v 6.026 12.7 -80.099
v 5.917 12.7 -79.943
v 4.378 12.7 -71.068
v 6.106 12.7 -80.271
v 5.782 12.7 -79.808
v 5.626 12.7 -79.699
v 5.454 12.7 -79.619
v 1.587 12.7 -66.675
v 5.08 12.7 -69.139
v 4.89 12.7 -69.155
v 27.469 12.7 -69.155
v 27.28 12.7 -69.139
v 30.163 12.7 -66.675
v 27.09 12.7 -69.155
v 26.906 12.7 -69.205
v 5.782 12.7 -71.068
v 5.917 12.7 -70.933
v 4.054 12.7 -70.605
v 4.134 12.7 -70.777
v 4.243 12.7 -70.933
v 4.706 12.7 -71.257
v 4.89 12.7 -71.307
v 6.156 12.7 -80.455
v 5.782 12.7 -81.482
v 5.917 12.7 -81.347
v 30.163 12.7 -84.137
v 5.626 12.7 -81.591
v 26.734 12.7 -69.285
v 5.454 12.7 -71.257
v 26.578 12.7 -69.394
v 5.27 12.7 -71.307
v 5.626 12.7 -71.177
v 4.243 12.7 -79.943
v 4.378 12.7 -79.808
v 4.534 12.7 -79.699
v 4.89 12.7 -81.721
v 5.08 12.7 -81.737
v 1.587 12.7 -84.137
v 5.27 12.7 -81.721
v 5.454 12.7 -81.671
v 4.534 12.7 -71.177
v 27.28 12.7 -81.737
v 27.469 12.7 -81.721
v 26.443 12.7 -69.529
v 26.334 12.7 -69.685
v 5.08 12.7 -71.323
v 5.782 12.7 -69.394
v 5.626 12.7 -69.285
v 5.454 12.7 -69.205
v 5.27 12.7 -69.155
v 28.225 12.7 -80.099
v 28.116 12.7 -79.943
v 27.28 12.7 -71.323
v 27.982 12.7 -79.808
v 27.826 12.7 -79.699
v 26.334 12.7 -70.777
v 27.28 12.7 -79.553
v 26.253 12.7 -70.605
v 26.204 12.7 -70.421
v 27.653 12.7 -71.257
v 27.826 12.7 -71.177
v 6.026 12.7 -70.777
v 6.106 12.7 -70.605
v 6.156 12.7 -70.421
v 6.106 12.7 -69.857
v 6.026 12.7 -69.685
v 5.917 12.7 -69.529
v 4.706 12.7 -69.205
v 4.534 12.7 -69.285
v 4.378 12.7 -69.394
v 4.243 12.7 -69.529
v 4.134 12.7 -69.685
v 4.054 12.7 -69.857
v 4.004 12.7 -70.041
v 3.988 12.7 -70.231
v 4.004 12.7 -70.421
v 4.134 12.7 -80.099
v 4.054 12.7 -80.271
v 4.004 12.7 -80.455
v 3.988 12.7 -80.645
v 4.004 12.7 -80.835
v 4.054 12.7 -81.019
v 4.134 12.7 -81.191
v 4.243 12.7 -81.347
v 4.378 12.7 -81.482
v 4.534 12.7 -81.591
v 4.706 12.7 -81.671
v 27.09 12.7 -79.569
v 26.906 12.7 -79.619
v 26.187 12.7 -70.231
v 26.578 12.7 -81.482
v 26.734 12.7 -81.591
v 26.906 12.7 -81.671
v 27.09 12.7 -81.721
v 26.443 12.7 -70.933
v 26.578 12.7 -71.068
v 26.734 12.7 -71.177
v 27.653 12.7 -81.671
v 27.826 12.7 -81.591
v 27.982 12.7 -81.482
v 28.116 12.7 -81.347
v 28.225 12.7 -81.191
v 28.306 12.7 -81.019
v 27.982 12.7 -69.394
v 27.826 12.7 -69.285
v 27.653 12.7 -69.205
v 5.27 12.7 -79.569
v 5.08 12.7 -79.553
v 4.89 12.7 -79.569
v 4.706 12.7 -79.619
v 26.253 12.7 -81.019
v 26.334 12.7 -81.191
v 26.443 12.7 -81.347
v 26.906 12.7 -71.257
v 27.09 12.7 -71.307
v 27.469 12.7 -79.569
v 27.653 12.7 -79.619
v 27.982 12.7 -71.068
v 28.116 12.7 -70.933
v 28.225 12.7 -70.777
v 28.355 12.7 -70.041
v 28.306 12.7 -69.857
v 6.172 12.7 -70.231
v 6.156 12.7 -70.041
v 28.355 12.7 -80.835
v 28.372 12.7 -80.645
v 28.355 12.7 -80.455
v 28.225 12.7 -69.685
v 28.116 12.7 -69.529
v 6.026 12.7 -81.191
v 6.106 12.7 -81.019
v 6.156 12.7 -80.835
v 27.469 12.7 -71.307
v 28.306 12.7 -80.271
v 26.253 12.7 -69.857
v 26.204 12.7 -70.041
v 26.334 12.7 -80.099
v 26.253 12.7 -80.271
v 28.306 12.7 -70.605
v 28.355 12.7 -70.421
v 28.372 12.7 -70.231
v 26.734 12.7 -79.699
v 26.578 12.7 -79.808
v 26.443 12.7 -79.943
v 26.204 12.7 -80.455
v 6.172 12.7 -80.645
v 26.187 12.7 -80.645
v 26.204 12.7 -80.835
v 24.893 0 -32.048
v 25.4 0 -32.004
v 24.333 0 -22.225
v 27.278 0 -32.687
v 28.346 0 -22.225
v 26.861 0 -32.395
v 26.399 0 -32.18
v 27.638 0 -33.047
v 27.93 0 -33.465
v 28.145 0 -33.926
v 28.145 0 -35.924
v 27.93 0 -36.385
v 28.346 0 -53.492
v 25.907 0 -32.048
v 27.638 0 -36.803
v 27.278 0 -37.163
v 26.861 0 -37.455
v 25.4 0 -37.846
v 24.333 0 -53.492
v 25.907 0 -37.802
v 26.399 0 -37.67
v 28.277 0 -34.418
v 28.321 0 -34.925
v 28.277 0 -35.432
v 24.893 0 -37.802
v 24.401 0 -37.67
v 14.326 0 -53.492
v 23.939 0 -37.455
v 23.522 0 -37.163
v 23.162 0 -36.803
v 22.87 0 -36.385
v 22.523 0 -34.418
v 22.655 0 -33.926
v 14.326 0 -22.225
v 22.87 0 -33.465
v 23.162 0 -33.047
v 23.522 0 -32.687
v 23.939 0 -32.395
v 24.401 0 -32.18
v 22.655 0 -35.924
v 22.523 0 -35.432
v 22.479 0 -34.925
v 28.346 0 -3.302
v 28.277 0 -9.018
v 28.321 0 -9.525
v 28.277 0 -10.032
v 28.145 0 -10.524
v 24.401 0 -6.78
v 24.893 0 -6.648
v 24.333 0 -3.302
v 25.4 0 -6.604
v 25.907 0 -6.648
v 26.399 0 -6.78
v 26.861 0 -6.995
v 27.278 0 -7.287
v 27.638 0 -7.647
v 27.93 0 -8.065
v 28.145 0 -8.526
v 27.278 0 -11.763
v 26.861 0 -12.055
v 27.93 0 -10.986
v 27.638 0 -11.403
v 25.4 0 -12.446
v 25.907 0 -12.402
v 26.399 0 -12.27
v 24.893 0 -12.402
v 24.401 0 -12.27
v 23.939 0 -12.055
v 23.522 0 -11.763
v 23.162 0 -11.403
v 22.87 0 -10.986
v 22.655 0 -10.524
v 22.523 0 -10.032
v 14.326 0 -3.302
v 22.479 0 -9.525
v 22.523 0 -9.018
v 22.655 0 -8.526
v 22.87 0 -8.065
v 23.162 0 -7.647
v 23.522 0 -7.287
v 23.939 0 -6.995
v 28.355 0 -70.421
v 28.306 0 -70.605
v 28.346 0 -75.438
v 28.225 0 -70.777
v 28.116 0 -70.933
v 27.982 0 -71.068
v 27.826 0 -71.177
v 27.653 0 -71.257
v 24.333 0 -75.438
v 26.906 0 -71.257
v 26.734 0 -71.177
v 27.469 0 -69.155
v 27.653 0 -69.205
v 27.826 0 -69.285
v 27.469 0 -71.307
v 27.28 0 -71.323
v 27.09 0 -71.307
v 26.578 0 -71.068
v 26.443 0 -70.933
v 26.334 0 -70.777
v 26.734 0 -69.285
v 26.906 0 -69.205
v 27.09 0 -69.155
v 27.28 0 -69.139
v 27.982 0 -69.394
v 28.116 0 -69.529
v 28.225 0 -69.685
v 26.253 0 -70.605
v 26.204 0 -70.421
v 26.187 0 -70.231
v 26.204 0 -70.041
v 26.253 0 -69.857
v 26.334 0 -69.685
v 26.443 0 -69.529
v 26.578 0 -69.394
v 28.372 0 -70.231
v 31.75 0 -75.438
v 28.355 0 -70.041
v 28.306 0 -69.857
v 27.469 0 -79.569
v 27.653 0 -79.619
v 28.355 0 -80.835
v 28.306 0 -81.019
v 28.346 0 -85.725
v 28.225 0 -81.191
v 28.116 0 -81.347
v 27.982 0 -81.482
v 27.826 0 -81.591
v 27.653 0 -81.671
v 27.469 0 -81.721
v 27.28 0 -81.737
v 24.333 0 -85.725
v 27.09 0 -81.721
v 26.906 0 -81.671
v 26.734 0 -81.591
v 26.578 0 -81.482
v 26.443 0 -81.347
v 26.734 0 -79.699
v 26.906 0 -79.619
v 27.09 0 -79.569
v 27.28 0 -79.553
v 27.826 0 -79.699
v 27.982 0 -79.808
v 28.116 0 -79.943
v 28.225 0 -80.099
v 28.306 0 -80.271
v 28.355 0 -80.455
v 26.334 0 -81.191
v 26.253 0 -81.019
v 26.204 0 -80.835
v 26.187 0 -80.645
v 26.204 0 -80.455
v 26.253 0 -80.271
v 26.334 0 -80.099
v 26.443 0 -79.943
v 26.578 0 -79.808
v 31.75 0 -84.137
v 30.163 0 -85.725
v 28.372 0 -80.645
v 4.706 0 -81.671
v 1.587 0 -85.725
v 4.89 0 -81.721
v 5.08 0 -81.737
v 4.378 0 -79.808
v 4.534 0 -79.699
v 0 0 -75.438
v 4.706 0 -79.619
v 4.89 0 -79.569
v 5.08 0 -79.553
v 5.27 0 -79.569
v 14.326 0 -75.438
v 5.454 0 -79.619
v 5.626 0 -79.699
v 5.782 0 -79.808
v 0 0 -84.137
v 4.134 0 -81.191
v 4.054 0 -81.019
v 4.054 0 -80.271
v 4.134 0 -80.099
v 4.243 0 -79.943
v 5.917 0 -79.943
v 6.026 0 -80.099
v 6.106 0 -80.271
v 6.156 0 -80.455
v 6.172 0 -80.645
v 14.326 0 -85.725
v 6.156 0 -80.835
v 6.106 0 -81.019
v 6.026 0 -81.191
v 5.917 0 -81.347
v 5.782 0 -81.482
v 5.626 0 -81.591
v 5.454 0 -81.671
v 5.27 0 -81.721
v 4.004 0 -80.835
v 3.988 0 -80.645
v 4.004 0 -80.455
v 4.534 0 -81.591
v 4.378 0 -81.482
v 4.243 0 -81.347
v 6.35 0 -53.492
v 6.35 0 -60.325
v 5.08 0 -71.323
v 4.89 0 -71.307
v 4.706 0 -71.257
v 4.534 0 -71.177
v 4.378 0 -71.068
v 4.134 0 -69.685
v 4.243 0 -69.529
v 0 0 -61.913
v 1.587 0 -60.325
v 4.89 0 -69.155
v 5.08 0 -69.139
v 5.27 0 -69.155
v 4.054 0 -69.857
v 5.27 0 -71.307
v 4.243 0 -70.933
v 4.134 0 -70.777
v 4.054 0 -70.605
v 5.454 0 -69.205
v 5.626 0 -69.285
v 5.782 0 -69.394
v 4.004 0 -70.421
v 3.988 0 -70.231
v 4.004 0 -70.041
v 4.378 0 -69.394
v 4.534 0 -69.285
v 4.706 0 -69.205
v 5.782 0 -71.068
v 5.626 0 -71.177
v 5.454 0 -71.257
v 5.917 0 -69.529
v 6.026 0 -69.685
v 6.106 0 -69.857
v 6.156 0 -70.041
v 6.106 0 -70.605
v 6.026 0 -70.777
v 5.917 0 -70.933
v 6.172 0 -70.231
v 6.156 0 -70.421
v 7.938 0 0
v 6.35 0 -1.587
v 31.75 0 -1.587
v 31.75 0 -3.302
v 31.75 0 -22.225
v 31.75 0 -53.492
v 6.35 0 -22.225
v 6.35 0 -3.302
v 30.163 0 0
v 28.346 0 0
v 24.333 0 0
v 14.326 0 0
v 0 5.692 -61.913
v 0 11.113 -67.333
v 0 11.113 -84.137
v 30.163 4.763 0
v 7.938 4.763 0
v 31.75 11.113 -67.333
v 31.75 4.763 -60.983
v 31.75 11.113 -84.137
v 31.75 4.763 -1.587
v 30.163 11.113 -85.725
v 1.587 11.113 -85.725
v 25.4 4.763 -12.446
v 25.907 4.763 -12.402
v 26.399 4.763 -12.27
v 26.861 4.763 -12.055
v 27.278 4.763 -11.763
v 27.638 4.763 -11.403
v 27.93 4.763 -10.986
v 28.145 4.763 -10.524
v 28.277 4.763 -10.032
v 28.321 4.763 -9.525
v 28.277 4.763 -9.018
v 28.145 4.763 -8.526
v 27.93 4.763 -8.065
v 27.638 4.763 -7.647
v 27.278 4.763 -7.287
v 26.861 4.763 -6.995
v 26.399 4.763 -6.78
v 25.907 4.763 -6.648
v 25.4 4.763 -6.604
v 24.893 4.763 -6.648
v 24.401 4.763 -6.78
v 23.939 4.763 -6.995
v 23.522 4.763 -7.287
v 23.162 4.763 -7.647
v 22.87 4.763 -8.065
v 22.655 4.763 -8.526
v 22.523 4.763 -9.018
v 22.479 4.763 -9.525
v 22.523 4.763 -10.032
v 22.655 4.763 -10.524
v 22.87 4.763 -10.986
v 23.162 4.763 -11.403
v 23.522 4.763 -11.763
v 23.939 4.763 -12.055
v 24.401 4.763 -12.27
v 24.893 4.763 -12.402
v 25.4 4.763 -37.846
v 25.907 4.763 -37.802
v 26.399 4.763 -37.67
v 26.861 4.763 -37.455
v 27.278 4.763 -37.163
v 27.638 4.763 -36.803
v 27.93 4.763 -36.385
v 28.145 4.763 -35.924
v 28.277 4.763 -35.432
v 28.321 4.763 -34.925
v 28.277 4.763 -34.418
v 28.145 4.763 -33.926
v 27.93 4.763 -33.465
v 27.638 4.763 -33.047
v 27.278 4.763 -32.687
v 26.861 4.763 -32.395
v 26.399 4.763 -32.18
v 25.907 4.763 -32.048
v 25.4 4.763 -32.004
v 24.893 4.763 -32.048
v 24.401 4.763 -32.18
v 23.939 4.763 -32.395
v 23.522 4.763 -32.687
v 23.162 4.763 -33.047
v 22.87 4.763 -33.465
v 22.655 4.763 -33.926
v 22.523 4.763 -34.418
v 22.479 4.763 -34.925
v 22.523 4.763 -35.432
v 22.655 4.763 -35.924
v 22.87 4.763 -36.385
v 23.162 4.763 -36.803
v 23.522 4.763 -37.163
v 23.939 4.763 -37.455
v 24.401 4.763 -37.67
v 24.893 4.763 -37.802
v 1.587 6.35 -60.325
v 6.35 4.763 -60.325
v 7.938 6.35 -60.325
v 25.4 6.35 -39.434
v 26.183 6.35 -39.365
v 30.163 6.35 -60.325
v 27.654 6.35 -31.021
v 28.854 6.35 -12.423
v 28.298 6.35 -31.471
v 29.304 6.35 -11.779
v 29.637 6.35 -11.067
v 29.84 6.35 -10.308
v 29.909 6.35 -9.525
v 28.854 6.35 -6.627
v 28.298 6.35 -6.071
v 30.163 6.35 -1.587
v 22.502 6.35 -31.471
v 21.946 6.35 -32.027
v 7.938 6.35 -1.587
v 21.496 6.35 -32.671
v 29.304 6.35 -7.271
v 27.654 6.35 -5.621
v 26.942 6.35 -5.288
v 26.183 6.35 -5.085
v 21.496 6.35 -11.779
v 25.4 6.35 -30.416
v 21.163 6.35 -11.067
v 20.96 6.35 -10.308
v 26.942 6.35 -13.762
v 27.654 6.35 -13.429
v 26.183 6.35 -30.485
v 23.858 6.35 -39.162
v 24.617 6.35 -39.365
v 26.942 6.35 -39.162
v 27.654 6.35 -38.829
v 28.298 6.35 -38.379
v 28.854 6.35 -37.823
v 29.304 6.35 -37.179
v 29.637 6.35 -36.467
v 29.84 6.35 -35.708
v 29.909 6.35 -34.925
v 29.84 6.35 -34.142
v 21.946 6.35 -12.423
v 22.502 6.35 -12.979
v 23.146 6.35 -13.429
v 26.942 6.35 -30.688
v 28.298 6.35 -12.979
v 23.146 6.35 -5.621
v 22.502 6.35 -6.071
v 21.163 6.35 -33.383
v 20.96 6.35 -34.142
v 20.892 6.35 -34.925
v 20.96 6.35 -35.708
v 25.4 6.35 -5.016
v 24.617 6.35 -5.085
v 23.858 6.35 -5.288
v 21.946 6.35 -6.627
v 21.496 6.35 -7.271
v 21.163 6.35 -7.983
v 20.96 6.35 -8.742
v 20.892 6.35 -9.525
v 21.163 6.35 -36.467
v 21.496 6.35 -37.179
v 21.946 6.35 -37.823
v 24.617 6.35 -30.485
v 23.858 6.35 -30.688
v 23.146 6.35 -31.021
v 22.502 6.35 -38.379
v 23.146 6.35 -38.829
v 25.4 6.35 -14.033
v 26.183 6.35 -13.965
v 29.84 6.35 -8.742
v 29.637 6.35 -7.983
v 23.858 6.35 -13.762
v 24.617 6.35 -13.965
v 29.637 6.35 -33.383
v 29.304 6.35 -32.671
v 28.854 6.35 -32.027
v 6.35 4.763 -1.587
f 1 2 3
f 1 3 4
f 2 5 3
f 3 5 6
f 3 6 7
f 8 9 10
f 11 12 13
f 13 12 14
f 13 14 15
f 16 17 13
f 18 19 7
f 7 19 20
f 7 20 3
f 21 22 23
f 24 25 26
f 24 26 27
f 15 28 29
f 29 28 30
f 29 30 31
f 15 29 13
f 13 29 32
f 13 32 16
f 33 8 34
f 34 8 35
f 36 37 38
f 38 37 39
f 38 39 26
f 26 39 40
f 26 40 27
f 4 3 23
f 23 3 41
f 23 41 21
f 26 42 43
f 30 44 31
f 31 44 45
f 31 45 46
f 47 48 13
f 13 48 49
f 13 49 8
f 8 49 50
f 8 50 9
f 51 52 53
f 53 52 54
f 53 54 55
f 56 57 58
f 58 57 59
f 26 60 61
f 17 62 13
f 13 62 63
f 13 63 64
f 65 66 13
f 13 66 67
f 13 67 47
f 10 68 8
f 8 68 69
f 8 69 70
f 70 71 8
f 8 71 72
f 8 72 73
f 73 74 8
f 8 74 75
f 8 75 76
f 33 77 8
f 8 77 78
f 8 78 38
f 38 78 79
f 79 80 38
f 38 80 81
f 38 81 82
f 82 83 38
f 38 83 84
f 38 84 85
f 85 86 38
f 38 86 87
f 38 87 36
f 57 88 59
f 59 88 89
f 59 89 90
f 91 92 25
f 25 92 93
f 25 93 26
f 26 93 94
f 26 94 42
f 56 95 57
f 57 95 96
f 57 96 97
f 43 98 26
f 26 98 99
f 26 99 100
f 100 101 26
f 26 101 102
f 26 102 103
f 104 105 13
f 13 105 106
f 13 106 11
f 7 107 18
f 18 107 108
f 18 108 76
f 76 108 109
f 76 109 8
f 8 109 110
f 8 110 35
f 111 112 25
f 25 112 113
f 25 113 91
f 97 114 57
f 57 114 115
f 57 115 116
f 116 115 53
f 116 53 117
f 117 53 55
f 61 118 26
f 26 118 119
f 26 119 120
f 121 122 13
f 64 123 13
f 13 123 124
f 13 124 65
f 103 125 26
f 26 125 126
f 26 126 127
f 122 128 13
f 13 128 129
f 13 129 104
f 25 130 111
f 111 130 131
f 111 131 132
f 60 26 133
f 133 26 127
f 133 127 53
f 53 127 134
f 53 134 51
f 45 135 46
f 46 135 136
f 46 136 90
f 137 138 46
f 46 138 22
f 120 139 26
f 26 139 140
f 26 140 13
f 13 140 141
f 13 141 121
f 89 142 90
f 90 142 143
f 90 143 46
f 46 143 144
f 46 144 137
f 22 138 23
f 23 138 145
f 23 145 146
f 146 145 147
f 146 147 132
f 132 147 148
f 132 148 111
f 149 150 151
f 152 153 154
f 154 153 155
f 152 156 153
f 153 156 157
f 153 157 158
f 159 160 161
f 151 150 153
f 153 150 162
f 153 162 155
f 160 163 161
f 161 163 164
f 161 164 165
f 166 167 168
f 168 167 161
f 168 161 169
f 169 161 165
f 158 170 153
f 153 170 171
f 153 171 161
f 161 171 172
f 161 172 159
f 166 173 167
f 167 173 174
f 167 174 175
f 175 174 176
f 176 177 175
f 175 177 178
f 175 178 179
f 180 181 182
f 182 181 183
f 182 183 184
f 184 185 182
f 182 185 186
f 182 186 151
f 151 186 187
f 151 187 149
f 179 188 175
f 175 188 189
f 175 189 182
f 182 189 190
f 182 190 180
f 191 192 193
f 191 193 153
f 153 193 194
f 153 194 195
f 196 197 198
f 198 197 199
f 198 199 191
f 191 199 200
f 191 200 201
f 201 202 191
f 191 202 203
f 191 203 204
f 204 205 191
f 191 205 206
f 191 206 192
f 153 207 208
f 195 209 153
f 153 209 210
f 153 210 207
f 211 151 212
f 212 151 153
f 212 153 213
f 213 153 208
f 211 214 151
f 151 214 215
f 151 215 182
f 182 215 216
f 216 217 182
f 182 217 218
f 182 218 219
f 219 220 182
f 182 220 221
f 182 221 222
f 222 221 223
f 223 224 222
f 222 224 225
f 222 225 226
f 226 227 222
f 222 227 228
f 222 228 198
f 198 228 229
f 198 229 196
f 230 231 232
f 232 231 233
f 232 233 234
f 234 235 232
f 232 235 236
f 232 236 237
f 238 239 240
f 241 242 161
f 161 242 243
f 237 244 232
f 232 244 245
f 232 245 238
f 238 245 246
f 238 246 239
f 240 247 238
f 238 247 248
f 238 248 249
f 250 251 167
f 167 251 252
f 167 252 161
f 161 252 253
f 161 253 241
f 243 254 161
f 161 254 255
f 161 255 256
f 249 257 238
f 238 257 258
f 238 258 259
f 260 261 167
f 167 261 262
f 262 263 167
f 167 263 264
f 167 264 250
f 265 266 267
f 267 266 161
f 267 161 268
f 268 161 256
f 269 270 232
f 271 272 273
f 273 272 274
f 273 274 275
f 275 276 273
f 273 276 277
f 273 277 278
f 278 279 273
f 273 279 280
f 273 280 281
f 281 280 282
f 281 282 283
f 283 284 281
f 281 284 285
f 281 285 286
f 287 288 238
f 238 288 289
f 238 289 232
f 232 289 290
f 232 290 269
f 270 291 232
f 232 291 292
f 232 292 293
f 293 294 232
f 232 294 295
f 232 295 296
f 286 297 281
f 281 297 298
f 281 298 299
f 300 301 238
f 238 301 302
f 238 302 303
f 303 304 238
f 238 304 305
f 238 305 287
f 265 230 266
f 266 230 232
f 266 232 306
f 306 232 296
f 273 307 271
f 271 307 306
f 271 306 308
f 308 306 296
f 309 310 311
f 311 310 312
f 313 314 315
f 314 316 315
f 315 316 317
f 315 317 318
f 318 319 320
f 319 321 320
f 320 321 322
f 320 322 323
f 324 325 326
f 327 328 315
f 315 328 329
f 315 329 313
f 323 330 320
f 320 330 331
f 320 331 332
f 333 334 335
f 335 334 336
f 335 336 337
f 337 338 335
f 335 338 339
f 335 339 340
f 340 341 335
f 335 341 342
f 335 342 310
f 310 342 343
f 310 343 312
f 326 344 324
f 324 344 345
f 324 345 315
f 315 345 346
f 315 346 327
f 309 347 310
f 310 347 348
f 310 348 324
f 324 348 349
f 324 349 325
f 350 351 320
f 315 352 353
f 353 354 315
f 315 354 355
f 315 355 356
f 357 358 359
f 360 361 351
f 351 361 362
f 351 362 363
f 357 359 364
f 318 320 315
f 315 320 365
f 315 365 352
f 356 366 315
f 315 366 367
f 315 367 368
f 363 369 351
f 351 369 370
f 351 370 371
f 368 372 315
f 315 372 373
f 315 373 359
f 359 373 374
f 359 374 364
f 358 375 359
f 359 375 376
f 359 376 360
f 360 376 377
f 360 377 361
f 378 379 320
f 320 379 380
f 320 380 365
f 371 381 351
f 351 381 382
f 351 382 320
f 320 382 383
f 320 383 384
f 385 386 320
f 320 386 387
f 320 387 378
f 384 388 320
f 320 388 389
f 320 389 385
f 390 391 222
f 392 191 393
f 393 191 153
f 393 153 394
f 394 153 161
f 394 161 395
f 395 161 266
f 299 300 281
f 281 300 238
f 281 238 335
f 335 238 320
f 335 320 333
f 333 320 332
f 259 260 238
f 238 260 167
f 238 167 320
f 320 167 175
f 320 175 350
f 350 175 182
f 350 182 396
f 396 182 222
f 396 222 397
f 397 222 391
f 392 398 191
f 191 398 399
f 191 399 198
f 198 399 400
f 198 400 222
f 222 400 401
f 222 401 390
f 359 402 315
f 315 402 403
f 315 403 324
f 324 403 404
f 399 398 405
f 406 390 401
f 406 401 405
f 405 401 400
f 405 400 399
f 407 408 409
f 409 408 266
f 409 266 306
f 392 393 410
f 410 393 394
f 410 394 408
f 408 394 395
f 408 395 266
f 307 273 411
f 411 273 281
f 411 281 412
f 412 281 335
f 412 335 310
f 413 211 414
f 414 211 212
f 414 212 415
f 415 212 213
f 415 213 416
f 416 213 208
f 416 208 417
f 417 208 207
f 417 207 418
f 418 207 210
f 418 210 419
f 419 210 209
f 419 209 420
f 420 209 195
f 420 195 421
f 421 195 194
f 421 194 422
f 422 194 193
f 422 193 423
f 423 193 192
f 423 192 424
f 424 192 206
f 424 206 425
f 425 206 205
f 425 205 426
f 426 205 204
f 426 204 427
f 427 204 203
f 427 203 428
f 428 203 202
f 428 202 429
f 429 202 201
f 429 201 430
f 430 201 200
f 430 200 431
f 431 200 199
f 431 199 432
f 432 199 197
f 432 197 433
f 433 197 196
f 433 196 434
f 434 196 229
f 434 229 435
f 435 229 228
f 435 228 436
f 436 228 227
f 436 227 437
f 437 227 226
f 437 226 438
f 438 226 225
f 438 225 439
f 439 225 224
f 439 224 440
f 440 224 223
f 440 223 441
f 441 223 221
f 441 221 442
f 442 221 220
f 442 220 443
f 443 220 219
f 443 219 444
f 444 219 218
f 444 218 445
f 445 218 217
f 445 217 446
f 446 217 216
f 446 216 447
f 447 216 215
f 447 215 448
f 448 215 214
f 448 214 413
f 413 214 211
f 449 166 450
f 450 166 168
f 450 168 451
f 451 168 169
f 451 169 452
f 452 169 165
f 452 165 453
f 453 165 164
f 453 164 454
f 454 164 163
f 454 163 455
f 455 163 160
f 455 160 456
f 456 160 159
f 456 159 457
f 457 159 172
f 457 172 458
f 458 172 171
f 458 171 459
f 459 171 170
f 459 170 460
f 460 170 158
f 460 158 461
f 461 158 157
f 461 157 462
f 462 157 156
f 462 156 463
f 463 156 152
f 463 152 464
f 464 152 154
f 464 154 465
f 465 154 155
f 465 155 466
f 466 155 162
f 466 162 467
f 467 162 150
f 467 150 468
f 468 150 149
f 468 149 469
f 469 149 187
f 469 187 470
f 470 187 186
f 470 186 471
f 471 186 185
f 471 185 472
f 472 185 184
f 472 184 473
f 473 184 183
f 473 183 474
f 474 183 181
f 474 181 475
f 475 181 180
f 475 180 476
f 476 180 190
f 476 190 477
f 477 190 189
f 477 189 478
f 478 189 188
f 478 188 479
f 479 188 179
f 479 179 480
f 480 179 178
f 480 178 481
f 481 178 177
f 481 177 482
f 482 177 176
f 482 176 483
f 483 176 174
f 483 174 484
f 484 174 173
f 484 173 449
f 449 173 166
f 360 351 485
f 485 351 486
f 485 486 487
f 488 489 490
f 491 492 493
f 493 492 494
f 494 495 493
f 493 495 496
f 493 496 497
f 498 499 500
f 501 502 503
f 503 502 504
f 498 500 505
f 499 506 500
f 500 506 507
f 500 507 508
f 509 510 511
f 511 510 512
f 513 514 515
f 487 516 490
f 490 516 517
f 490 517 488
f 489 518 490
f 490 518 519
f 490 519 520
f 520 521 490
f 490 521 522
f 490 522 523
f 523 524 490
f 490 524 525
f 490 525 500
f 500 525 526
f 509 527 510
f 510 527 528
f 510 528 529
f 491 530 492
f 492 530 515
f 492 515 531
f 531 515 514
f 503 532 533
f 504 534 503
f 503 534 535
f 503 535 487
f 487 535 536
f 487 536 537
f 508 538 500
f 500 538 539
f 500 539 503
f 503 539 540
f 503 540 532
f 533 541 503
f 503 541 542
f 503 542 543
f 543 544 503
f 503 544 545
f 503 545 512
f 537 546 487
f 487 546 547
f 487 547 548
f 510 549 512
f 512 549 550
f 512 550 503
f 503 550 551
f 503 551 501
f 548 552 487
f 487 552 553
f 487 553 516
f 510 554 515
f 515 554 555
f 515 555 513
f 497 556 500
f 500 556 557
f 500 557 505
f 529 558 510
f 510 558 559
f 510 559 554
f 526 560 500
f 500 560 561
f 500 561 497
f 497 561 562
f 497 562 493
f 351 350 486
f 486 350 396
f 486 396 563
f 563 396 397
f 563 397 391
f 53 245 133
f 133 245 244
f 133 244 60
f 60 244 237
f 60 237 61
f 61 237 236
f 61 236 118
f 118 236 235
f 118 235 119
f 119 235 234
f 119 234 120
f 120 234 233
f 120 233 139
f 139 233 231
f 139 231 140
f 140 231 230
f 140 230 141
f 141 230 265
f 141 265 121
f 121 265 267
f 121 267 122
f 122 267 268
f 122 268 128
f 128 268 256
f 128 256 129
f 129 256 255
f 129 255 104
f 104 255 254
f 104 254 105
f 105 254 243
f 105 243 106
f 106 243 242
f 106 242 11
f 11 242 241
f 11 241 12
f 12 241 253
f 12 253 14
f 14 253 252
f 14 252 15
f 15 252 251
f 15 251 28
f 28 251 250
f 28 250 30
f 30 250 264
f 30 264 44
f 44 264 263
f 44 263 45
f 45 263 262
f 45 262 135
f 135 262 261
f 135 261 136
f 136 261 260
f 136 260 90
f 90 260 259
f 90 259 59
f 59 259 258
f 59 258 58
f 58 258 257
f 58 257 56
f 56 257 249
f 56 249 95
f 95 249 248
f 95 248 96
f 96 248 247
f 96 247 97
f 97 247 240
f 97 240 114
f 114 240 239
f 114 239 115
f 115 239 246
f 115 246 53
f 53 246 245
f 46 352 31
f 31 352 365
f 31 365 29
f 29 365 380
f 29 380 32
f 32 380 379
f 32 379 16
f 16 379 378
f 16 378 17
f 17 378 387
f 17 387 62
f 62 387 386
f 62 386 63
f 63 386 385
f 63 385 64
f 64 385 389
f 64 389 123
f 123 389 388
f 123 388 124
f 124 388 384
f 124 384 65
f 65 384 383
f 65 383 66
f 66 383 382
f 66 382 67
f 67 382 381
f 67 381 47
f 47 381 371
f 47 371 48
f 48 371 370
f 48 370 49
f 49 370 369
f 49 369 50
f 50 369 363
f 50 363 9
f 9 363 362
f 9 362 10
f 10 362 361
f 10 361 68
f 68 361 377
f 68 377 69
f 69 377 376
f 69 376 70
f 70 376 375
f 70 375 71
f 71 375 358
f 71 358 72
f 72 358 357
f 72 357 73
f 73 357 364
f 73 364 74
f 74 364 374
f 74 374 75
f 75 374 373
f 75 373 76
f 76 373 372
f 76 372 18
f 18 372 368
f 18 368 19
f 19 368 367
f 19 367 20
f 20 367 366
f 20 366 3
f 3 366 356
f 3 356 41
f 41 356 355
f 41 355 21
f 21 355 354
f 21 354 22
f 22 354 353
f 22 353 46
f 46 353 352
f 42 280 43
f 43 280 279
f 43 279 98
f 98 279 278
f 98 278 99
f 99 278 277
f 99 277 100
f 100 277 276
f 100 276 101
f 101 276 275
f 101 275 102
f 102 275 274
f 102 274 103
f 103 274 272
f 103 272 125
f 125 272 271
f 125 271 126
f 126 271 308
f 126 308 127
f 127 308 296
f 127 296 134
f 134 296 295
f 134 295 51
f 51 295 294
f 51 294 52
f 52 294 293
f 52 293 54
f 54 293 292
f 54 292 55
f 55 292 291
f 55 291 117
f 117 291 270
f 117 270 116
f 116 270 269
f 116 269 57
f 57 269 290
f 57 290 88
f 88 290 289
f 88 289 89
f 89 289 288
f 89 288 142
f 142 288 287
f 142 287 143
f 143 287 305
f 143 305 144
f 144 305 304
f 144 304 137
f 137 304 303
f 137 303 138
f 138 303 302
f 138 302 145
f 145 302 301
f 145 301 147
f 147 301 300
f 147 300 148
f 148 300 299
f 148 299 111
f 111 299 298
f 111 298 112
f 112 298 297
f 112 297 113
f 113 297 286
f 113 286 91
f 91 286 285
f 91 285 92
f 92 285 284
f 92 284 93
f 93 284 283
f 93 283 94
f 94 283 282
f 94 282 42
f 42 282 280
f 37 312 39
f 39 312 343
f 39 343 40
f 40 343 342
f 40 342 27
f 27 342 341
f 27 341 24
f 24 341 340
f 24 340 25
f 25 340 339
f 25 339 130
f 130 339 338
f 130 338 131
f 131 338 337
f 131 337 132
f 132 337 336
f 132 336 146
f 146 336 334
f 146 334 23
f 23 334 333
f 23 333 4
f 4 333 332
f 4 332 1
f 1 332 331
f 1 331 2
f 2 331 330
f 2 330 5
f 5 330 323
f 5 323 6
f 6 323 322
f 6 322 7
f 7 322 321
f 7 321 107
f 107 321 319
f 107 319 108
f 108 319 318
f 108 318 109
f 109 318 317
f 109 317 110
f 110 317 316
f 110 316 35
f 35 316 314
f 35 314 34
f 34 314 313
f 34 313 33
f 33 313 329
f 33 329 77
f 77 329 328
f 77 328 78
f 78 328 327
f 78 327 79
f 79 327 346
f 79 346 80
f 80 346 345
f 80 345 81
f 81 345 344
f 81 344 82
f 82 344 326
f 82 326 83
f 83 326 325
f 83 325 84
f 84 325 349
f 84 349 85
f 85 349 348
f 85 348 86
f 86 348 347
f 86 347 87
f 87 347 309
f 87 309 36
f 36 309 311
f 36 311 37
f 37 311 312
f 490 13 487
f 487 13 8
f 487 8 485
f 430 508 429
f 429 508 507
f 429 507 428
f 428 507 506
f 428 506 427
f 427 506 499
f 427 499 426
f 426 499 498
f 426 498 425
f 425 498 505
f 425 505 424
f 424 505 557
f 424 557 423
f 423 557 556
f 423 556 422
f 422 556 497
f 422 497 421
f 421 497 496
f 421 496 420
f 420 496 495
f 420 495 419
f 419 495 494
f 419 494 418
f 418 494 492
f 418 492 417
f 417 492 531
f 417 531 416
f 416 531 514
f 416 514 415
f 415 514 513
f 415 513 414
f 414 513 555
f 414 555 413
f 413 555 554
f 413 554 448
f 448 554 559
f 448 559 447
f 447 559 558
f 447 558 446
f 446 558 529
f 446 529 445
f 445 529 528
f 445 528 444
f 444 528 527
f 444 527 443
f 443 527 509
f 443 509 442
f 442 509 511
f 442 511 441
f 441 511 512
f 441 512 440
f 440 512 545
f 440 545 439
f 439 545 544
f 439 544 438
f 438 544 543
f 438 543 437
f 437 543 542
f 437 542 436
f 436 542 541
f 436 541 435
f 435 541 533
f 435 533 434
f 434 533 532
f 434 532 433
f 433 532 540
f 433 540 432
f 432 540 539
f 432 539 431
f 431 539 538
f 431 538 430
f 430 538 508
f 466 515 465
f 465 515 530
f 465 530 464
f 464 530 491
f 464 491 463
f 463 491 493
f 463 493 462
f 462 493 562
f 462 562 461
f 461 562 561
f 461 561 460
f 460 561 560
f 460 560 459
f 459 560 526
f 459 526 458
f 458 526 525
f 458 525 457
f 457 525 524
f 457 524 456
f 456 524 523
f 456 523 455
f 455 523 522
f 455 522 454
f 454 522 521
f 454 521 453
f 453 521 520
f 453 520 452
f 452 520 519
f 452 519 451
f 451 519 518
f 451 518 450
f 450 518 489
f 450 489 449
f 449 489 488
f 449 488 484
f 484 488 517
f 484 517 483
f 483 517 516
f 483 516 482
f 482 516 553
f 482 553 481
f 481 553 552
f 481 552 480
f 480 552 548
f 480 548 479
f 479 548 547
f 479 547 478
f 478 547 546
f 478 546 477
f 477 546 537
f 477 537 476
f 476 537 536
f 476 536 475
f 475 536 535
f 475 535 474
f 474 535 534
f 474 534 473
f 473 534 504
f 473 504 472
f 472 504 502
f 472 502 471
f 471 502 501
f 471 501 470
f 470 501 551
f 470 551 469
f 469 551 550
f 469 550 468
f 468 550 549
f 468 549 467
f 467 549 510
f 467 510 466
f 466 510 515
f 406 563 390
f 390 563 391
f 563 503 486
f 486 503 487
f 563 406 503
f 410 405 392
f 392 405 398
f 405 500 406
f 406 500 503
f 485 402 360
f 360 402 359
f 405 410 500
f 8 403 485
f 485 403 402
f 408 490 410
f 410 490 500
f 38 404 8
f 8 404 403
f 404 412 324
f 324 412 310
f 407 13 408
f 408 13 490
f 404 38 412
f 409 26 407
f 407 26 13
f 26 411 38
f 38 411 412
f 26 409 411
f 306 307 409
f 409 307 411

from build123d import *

# Parameters (mm, degrees)
SKETCH1_W           = 31.75
SKETCH1_H           = 85.725
SKETCH1_R           = 2.921
BOSS_EXTRUDE1_DEPTH = 12.7
SKETCH2_W           = 60.325
SKETCH2_H           = 6.35
CUT_EXTRUDE1_DEPTH  = 93.293705771
SKETCH3_R           = 1.0922
SKETCH3_W           = 6.35
SKETCH3_H           = 60.325
CUT_EXTRUDE2_DEPTH  = 93.293705771
CHAMFER1_SIZE       = 6.35
CHAMFER2_SIZE       = 1.5875


with BuildPart() as part:
    # Sketch1 → Boss-Extrude1 (new body)
    with BuildSketch(Plane(origin=(0, 0, 0), x_dir=(1, 0, 0), z_dir=(0, 1, 0))):
        with Locations((15.875, 42.8625)):
            Rectangle(SKETCH1_W, SKETCH1_H)
        with Locations(Location((25.4, 9.525, 0), (0, 0, 270))):
            Circle(SKETCH1_R, mode=Mode.SUBTRACT)
        with Locations(Location((25.4, 34.925, 0), (0, 0, 270))):
            Circle(SKETCH1_R, mode=Mode.SUBTRACT)
    extrude(amount=BOSS_EXTRUDE1_DEPTH)

    # Sketch2 → Cut-Extrude1 (cut, through all)
    with BuildSketch(Plane(origin=(31.75, 0, 0), x_dir=(0, 0, -1), z_dir=(1, 0, 0))):
        with Locations((30.1625, 9.525)):
            Rectangle(SKETCH2_W, SKETCH2_H)
    extrude(amount=-CUT_EXTRUDE1_DEPTH, mode=Mode.SUBTRACT)

    # Sketch3 → Cut-Extrude2 (cut, through all)
    with BuildSketch(Plane.XZ):
        with Locations(Location((27.2796, -70.231, 0), (0, 0, 270))):
            Circle(SKETCH3_R)
        with Locations(Location((5.08, -80.645, 0), (0, 0, 270))):
            Circle(SKETCH3_R)
        with Locations(Location((27.2796, -80.645, 0), (0, 0, 270))):
            Circle(SKETCH3_R)
        with Locations(Location((5.08, -70.231, 0), (0, 0, 270))):
            Circle(SKETCH3_R)
        with Locations((3.175, -30.1625)):
            Rectangle(SKETCH3_W, SKETCH3_H)
    extrude(amount=-CUT_EXTRUDE2_DEPTH, mode=Mode.SUBTRACT)

    # Chamfer1
    chamfer1_edges = [part.edges().sort_by_distance(p)[0] for p in [
        (15.875, 12.7, -60.325),
    ]]
    chamfer(chamfer1_edges, length=CHAMFER1_SIZE)

    # Chamfer2
    chamfer2_edges = [part.edges().sort_by_distance(p)[0] for p in [
        (15.875, 12.7, -85.725),
        (31.75, 3.175, 0),
        (25.4, 6.35, -12.446),
        (25.4, 6.35, -37.846),
        (0, 3.175, -60.325),
        (31.75, 6.35, -30.1625),
        (19.05, 6.35, 0),
        (6.35, 6.35, -30.1625),
        (0, 12.7, -76.2),
        (6.35, 3.175, 0),
        (0, 6.35, -85.725),
        (31.75, 6.35, -85.725),
        (31.75, 12.7, -76.2),
        (31.75, 9.525, -63.5),
        (0, 9.525, -63.5),
    ]]
    chamfer(chamfer2_edges, length=CHAMFER2_SIZE)


solid = part.part
